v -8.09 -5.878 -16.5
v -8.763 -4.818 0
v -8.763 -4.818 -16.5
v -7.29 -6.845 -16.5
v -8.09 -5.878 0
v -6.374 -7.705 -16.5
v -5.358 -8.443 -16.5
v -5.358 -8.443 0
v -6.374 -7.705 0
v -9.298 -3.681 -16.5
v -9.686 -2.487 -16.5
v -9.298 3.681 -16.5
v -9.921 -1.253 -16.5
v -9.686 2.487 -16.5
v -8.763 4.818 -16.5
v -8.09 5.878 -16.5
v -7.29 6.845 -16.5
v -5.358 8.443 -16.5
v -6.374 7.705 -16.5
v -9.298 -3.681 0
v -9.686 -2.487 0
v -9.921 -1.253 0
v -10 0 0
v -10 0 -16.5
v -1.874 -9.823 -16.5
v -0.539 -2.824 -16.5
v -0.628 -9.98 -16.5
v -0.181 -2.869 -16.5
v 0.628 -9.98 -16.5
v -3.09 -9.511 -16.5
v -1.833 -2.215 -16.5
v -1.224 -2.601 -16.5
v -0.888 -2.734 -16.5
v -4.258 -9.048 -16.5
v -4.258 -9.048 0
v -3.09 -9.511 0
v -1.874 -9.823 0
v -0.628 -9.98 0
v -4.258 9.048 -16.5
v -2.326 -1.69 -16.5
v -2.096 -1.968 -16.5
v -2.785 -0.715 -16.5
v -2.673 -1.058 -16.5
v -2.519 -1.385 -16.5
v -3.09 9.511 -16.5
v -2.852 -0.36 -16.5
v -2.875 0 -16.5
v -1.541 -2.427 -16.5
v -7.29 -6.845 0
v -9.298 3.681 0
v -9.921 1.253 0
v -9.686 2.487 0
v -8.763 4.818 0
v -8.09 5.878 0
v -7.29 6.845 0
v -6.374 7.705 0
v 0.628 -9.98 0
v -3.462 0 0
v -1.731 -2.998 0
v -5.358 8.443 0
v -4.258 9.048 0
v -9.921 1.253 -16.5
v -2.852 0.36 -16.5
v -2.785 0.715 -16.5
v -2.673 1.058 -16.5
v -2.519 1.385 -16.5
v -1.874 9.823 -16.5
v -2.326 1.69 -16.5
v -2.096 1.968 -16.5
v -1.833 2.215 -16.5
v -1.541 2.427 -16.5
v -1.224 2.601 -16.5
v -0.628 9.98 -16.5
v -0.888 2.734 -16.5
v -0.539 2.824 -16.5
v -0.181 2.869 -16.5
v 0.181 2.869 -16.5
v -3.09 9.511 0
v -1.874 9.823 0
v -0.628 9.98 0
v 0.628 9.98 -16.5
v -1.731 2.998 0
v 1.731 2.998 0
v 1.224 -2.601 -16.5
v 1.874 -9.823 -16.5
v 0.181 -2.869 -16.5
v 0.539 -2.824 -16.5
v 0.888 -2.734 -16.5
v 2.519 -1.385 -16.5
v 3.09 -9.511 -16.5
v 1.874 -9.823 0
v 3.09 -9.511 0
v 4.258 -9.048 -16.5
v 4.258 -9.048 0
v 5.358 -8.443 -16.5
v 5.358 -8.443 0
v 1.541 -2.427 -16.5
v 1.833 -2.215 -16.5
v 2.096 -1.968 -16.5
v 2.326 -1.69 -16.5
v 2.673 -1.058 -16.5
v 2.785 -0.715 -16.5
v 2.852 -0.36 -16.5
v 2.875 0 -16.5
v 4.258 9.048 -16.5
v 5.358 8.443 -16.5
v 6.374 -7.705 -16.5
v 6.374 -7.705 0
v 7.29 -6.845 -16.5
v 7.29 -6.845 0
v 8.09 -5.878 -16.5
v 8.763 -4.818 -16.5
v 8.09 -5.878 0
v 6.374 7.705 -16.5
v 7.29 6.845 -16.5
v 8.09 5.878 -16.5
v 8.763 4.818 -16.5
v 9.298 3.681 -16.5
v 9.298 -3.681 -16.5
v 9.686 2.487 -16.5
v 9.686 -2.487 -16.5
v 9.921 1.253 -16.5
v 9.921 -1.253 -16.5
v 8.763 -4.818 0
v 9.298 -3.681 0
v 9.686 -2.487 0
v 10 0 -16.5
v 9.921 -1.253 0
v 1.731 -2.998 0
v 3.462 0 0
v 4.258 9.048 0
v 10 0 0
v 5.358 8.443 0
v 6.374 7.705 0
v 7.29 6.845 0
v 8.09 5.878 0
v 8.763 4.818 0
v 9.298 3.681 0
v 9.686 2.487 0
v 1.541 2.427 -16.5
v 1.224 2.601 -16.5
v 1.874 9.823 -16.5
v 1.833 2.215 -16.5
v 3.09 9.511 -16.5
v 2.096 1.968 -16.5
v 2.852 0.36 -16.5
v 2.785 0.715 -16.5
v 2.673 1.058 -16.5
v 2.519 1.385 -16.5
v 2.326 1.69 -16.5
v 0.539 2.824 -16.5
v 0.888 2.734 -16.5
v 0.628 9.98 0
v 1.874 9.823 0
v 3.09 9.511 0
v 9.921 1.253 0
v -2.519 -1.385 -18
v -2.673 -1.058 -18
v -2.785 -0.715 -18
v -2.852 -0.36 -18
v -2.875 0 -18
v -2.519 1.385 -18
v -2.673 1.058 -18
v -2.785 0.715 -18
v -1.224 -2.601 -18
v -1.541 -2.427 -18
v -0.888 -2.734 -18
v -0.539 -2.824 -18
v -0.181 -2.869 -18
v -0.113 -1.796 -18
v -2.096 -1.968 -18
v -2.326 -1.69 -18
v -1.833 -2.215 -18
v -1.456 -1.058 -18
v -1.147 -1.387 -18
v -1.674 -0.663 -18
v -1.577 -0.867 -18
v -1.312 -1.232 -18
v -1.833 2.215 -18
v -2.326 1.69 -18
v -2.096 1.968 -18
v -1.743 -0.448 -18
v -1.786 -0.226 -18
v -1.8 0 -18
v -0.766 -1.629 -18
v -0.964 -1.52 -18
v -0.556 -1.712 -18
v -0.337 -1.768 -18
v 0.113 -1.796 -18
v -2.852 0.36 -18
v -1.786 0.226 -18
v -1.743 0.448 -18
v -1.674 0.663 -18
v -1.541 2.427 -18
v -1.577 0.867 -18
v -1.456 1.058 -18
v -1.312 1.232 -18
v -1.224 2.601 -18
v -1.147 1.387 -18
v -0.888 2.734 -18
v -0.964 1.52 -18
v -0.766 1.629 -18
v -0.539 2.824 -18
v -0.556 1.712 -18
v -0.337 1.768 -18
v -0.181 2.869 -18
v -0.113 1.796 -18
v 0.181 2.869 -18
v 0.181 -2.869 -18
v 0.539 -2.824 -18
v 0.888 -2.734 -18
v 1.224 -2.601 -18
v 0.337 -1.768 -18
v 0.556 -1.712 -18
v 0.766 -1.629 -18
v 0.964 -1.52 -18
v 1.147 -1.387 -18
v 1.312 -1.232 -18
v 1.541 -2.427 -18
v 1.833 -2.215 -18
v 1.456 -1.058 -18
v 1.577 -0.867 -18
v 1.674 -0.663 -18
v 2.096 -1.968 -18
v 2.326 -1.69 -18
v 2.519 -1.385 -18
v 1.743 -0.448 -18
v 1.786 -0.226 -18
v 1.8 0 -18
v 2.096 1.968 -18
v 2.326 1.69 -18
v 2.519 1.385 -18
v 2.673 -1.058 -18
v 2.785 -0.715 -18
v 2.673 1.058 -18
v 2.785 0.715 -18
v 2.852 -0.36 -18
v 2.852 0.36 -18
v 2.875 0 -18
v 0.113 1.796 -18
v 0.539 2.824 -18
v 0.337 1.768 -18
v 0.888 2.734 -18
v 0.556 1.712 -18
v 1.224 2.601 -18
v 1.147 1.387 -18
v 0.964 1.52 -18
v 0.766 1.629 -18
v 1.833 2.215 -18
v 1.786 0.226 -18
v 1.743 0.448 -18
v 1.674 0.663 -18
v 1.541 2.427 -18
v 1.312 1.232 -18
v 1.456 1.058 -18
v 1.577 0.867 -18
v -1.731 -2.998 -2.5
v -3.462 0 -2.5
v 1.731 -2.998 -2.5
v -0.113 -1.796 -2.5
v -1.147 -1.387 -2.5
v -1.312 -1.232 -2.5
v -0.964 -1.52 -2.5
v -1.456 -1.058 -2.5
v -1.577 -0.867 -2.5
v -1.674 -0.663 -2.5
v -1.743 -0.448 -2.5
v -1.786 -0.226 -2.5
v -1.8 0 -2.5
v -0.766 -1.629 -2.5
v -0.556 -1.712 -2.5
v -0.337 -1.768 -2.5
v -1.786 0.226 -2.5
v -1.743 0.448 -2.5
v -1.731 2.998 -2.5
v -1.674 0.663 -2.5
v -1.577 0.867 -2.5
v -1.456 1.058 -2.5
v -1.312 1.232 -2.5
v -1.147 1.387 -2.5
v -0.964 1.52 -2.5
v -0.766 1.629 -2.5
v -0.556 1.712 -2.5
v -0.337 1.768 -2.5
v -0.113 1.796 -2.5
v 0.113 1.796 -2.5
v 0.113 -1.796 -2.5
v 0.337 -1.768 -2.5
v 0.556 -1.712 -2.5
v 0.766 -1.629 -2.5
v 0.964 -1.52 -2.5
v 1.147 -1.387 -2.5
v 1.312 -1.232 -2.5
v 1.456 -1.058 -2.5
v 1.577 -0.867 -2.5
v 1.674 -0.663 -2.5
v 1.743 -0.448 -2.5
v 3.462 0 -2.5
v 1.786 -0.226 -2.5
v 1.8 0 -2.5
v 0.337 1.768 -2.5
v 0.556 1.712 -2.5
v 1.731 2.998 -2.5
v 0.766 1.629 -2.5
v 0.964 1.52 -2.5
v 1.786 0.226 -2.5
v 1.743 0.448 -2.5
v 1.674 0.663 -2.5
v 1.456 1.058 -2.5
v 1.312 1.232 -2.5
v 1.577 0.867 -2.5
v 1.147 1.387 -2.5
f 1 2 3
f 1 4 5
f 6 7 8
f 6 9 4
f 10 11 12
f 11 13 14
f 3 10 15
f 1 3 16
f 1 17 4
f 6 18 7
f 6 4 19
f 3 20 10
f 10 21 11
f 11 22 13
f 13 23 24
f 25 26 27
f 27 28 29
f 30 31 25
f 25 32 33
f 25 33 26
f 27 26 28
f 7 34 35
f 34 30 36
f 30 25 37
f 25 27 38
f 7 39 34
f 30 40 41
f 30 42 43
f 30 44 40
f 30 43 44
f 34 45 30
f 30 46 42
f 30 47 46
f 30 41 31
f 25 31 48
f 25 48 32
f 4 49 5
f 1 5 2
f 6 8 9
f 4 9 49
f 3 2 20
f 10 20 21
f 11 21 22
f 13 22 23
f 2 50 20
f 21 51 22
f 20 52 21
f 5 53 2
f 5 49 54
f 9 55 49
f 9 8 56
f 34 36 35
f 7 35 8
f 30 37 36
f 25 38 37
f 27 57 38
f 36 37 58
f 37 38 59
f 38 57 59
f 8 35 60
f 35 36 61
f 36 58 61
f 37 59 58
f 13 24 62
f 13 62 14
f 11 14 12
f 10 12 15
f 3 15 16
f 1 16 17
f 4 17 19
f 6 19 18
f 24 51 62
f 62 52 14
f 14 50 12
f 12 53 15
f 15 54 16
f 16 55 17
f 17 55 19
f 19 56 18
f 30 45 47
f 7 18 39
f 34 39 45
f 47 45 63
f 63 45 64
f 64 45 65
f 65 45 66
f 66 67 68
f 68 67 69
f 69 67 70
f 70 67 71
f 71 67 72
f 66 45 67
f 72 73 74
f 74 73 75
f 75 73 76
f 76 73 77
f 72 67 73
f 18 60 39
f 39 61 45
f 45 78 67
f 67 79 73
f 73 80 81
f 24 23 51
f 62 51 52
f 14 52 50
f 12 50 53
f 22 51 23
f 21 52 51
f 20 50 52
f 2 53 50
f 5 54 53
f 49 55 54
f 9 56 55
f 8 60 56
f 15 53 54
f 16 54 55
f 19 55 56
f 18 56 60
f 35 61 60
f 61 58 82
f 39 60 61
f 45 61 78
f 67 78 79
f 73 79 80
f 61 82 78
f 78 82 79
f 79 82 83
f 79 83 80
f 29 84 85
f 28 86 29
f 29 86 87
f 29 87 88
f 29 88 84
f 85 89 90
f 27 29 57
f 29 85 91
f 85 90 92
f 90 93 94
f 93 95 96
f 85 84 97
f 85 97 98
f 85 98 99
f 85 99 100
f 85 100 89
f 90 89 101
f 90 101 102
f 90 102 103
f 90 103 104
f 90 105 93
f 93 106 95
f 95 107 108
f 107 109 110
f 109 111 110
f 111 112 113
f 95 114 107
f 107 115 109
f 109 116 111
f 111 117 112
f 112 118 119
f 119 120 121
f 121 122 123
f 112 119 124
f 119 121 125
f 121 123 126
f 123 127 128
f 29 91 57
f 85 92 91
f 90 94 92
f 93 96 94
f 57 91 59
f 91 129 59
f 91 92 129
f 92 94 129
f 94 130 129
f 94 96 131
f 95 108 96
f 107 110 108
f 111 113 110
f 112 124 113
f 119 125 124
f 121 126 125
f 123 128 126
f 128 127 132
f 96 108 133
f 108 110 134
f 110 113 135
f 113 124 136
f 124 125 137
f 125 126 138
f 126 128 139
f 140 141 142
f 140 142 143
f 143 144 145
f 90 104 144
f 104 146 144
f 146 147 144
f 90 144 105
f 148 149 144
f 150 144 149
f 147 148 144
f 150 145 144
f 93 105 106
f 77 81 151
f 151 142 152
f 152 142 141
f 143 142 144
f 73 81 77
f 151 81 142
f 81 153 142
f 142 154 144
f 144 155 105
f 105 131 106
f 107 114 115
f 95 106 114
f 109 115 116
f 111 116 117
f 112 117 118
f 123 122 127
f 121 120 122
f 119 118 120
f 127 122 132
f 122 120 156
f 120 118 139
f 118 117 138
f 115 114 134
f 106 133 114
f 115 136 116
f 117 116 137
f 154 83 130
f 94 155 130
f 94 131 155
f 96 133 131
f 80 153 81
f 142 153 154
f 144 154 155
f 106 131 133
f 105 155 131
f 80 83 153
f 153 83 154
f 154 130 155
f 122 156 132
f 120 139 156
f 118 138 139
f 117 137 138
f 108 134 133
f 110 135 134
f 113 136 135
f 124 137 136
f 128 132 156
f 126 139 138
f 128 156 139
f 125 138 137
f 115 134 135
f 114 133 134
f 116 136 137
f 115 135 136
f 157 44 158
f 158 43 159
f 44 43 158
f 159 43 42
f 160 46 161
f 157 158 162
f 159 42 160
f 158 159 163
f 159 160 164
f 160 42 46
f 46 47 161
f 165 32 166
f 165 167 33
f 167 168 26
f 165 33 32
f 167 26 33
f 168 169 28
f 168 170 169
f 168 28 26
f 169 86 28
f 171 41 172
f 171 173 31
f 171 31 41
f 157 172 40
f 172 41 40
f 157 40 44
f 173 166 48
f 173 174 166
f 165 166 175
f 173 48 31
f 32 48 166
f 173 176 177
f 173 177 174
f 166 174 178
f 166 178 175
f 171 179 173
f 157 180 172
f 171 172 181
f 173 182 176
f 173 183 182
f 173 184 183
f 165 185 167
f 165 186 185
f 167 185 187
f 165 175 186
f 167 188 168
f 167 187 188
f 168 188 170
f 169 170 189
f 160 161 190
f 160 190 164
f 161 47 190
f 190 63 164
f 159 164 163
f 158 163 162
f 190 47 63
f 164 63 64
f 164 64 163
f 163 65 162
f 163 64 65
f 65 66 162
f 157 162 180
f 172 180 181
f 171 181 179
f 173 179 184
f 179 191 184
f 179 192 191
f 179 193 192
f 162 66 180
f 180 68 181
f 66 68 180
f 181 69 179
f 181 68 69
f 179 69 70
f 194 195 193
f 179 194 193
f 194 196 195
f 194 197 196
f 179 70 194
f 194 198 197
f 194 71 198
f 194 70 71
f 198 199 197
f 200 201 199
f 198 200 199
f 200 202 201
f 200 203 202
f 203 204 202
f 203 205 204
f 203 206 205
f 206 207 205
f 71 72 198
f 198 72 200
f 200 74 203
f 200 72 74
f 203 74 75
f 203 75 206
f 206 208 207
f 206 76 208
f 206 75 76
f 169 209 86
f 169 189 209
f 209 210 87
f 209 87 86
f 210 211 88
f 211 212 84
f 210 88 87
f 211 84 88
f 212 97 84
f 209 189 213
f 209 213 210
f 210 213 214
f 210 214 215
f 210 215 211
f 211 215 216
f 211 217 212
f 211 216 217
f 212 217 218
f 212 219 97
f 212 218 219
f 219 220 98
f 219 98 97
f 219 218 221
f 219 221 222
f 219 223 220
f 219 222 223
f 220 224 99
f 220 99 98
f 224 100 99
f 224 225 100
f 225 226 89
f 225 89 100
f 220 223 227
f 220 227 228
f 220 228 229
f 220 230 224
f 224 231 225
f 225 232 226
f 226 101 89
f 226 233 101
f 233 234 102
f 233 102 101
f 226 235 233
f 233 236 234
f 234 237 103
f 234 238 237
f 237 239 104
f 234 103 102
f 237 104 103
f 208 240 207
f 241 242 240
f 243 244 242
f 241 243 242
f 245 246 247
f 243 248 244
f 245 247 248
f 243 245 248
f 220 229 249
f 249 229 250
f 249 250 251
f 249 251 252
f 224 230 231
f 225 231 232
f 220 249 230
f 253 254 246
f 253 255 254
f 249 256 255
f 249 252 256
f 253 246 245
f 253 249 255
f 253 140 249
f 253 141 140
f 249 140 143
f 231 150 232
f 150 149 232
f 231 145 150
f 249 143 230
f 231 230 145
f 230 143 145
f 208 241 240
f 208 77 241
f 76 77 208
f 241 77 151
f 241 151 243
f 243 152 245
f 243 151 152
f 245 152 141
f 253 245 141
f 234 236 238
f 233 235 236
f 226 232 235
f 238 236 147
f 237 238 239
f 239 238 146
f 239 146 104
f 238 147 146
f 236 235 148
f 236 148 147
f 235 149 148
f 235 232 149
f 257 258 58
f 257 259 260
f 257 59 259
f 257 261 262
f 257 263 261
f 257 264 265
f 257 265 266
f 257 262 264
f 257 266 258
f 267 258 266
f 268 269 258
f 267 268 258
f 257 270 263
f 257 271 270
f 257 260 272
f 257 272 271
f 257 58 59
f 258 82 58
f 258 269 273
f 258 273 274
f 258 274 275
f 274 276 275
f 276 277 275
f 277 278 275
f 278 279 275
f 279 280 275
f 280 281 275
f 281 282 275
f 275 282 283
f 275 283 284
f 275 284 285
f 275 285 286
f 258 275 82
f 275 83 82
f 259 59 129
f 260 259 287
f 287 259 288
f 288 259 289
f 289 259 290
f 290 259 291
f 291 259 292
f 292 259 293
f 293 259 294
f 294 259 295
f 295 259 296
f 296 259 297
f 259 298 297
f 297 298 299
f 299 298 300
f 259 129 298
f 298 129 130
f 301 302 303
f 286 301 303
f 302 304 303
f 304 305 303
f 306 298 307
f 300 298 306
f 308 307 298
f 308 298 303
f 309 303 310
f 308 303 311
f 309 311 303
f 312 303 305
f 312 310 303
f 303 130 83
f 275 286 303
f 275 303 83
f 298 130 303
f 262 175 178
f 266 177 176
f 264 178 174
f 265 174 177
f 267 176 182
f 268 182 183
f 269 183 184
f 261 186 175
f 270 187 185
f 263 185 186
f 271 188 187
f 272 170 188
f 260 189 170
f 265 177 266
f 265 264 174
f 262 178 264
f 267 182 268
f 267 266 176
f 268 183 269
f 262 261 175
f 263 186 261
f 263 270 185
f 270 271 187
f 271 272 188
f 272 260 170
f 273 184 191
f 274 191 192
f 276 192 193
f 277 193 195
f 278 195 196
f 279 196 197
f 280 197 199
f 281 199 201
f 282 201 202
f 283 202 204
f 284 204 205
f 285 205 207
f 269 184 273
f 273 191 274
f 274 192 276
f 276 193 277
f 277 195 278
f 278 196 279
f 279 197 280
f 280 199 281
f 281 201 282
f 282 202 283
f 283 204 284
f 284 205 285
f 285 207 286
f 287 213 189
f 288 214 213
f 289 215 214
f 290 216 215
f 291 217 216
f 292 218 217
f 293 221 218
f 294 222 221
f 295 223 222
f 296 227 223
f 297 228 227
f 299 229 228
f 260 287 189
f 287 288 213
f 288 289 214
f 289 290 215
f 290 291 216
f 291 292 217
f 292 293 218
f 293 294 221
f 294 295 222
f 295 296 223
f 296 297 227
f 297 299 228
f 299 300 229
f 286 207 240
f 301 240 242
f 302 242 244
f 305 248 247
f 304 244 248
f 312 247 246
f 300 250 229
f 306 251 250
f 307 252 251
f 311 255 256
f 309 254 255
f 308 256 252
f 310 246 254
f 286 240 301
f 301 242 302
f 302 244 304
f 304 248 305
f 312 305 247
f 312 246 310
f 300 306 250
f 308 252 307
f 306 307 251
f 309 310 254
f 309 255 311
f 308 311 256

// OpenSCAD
$fn = 50;


difference() {
	union() {
		translate(v = [0, 0, -16.5000000000]) {
			cylinder(h = 16.5000000000, r = 10.0000000000);
		}
		#translate(v = [0, 0, -18.0000000000]) {
			cylinder(h = 18, r = 2.8750000000);
		}
	}
	union() {
		translate(v = [0, 0, 0]) {
			rotate(a = [0, 0, 0]) {
				difference() {
					union() {
						translate(v = [0, 0, -2.5000000000]) {
							linear_extrude(height = 2.5000000000) {
								polygon(points = [[3.4620000000, 0.0000000000], [1.7310000000, 2.9981799479], [-1.7310000000, 2.9981799479], [-3.4620000000, 0.0000000000], [-1.7310000000, -2.9981799479], [1.7310000000, -2.9981799479]]);
							}
						}
					}
					union();
				}
			}
		}
		#translate(v = [0, 0, -100.0000000000]) {
			cylinder(h = 200, r = 1.8000000000);
		}
	}
}
